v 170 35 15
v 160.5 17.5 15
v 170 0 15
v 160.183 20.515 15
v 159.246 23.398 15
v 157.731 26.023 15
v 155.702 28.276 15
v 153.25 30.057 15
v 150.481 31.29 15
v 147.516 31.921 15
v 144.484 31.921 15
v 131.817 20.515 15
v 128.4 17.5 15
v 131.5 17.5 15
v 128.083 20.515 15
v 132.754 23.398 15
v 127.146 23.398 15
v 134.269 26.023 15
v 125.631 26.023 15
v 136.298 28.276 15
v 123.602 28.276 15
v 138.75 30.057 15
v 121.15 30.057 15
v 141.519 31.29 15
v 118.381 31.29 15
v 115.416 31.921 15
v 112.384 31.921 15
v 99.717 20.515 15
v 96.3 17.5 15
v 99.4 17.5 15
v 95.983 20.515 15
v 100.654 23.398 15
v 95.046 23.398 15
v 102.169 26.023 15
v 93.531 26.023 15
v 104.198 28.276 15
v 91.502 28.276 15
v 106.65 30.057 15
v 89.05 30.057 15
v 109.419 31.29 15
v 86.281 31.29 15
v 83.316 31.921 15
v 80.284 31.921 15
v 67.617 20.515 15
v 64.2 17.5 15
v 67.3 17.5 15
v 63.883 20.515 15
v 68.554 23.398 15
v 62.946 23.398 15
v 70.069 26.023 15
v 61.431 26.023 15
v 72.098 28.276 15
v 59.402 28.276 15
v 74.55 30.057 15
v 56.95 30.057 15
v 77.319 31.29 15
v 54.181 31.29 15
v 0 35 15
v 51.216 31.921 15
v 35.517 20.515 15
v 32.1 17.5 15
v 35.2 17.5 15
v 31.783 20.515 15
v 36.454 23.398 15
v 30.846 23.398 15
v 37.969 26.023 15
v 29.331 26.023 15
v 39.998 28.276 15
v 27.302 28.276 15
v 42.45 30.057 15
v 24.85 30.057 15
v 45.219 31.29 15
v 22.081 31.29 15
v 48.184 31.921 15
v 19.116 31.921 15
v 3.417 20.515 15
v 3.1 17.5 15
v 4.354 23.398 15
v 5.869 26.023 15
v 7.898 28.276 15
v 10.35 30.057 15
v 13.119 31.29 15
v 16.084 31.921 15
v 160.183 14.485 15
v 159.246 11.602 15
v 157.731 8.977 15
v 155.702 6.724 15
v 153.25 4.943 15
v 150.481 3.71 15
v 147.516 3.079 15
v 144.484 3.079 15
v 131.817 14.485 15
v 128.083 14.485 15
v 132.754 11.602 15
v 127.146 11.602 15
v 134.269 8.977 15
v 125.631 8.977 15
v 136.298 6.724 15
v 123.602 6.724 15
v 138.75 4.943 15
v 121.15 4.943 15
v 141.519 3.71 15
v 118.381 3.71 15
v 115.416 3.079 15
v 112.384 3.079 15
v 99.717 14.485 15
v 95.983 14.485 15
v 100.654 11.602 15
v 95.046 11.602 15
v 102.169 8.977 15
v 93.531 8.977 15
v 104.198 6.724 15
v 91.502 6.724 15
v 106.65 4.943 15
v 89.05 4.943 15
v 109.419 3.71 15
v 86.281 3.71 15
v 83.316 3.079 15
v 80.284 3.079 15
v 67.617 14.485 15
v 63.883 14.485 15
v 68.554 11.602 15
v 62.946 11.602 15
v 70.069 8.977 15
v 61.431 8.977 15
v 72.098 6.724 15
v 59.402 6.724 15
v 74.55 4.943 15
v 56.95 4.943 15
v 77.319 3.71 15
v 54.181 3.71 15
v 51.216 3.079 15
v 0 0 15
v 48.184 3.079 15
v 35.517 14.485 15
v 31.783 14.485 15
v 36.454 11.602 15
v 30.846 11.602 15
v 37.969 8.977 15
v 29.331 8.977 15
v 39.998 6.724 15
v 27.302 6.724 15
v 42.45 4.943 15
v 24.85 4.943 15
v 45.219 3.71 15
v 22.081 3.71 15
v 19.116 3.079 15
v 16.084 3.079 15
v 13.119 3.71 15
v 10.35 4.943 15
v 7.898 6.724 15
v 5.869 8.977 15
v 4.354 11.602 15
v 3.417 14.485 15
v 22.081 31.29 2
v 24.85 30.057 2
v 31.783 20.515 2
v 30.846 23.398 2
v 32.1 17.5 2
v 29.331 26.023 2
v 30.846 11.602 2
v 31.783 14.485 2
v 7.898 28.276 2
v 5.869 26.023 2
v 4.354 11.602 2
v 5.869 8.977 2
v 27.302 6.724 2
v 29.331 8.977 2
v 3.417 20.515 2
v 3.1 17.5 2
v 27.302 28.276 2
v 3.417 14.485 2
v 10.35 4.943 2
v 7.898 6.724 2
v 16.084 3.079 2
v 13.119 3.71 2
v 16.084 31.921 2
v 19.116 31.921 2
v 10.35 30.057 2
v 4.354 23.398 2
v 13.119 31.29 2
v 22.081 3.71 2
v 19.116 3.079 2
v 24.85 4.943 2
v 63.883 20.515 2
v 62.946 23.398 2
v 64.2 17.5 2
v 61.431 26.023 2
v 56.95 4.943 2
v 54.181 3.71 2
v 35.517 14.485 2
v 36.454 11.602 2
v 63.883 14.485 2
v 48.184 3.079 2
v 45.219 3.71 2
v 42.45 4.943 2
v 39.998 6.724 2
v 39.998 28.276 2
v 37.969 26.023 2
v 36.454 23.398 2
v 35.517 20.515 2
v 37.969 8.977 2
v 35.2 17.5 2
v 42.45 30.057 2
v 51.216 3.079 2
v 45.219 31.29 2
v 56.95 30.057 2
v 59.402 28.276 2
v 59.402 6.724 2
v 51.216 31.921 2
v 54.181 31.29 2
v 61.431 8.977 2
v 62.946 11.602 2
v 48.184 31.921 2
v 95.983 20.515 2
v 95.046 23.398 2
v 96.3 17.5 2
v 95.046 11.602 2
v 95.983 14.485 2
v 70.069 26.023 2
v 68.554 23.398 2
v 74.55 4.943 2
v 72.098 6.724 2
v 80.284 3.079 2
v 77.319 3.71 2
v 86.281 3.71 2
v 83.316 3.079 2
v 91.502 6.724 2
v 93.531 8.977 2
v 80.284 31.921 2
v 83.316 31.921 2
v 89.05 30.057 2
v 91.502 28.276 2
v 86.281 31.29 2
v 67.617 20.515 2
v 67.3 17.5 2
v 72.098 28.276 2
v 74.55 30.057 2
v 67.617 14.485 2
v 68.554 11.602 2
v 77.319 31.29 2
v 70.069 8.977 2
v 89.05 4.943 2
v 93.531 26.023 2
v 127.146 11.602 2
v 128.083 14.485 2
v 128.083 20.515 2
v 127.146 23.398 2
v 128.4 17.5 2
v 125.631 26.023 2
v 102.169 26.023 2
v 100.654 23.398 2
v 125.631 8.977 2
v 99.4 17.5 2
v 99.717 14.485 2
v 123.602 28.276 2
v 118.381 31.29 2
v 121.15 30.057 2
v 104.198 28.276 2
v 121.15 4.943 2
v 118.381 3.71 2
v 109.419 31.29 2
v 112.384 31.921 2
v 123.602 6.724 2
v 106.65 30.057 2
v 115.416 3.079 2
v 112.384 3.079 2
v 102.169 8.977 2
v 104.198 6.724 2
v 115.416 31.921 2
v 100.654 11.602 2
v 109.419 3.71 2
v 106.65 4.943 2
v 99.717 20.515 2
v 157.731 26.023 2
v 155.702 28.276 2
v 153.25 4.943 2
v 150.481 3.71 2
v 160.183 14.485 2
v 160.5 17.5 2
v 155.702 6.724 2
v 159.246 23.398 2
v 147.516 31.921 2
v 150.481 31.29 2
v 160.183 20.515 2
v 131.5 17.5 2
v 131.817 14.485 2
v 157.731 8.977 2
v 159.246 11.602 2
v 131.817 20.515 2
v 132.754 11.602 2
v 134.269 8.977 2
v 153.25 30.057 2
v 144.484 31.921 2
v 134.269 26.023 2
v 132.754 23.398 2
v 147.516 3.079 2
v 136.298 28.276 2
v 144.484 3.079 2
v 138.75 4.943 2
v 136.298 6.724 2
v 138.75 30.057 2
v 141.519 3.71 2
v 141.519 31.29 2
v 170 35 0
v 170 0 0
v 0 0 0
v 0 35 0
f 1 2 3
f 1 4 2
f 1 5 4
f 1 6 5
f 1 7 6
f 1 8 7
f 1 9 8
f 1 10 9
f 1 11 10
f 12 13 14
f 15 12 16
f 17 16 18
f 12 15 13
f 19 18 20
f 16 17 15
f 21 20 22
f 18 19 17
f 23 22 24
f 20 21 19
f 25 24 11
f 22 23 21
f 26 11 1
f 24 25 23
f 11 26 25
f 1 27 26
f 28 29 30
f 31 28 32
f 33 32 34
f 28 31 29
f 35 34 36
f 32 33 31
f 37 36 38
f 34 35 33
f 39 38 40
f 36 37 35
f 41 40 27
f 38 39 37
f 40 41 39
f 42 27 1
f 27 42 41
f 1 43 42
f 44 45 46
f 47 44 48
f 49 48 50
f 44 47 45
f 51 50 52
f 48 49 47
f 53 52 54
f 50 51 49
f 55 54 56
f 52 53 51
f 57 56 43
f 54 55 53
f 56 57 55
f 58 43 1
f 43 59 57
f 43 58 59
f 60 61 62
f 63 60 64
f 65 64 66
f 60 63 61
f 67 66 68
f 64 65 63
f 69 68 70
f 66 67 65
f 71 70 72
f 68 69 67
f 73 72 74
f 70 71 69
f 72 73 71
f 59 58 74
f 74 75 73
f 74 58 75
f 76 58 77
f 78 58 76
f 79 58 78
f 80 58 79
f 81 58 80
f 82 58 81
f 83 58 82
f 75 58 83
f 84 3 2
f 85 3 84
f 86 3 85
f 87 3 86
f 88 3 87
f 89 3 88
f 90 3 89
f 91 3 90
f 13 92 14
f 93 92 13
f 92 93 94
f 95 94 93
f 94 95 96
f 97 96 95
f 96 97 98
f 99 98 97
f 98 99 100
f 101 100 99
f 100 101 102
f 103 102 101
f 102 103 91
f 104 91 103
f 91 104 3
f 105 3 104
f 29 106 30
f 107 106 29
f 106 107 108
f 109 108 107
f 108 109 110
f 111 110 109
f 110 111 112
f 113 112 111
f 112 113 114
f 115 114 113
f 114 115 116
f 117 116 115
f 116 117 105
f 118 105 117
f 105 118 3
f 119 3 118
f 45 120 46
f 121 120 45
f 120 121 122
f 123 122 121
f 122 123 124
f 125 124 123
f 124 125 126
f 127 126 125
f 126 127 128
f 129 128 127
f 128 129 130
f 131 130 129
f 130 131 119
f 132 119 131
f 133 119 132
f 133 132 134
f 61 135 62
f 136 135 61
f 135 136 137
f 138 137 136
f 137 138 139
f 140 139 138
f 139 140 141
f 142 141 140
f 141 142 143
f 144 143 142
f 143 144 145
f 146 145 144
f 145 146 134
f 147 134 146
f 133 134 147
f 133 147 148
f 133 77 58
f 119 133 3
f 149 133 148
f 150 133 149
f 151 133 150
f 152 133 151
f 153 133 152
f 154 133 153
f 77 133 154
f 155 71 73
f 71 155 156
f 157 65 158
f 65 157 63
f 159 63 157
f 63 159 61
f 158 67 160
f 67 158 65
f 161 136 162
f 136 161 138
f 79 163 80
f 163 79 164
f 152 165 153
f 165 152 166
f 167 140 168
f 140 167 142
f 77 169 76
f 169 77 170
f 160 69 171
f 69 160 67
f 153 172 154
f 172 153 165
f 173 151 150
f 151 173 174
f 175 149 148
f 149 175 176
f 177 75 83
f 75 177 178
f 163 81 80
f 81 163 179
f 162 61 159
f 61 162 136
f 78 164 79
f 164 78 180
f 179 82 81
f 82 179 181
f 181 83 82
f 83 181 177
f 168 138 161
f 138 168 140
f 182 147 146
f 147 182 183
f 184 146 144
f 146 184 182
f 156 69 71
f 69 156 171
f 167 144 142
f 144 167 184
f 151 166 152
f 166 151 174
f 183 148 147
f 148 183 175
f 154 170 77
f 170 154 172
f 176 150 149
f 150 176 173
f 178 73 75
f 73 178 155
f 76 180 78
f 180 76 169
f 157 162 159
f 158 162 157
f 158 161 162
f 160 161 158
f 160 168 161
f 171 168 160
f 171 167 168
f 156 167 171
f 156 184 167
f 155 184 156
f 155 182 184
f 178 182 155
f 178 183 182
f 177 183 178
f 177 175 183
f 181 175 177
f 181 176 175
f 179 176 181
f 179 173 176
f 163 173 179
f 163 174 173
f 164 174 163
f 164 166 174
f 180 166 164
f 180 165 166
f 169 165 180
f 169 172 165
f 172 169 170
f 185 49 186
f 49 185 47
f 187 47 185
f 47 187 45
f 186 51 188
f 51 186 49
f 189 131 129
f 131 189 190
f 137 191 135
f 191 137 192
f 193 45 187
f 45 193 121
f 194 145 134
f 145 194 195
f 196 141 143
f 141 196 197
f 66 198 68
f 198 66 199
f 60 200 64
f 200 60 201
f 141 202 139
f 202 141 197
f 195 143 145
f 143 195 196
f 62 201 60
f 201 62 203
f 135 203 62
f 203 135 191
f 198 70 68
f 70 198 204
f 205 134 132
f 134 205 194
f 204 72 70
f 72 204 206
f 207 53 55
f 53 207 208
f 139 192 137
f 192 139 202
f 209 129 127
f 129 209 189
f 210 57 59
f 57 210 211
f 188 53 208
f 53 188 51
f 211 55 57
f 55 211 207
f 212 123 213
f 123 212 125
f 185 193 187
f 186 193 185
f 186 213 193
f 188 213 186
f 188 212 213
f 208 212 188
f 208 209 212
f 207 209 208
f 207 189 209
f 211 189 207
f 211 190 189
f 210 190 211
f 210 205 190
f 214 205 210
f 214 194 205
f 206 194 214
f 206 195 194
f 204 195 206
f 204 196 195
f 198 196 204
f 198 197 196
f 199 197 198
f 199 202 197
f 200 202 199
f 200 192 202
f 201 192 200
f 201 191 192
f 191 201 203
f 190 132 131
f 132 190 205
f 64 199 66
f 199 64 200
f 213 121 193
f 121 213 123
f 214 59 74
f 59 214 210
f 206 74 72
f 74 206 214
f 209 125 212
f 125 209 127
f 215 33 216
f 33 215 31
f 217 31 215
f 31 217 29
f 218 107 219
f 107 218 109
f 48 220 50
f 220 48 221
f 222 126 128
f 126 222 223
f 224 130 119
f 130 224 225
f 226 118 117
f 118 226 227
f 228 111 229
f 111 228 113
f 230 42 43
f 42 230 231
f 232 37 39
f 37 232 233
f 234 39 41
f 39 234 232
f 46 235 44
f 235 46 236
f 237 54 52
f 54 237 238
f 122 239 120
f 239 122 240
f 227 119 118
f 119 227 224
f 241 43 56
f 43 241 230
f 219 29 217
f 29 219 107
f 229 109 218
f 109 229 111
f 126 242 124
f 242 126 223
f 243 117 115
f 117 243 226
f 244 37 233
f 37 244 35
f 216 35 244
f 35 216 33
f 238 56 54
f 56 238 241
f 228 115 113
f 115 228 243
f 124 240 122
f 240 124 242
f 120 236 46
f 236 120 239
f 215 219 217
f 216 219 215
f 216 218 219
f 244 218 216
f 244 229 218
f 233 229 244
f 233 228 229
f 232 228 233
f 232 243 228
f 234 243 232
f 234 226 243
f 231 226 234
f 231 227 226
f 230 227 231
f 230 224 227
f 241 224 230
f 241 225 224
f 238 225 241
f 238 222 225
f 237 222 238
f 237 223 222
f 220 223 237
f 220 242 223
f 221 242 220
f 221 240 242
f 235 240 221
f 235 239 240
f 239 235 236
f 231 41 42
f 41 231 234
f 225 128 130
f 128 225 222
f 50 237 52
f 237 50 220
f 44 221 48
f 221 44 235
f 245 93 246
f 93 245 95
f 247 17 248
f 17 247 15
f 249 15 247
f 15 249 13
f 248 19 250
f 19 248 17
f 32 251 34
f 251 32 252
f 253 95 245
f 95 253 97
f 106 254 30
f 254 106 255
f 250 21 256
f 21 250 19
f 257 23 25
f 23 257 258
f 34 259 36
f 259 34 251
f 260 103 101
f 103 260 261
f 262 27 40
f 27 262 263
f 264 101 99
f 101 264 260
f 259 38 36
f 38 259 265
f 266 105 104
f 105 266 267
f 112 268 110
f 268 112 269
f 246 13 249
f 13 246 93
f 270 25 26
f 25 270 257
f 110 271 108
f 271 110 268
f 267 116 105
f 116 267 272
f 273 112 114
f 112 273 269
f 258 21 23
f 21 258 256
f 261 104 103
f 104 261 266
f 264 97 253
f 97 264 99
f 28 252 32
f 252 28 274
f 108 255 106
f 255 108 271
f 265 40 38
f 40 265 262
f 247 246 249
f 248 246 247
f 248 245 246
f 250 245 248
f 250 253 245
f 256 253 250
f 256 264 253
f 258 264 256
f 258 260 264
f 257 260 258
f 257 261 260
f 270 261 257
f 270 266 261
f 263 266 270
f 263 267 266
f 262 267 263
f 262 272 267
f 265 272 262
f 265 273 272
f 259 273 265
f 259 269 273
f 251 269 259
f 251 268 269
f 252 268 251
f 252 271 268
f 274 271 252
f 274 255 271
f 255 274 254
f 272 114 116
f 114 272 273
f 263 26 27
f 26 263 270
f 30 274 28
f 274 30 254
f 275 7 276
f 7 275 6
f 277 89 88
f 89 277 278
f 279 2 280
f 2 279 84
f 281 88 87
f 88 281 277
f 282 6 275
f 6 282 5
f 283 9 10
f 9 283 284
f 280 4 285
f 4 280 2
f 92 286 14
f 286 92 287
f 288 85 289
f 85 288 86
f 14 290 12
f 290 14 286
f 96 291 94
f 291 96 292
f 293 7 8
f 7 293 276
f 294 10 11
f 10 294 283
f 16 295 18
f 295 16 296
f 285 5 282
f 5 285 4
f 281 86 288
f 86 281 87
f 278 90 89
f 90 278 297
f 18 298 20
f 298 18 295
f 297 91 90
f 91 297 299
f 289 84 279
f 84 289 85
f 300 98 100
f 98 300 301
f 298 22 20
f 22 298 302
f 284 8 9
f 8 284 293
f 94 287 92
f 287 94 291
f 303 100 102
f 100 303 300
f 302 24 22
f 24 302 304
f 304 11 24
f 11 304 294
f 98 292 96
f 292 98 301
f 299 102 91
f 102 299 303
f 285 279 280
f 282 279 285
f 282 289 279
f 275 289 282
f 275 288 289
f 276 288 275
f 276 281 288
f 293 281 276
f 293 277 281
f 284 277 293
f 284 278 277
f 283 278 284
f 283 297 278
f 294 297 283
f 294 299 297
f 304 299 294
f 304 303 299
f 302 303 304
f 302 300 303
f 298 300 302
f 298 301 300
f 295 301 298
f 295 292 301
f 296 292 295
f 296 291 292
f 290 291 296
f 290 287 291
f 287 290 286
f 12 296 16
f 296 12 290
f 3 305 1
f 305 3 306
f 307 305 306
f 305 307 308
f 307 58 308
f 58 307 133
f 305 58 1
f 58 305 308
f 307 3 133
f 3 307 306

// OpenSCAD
H=15;
W=170;
L=35;
F=2;
WALL=3.1;

module main() {
    difference() {
        box();
        holes(5,29);
    }
}


module holes(n,d) {
    echo((L-d)/2);
    bottom_offset=(L-d)/2;
    for (i=[0:n-1]) {
        echo(i);
    #translate([d/2+WALL+(WALL+d)*i,d/2+bottom_offset,F]) cylinder(H-F,d=d);
    }
}

module box() {
    cube([W,L,H]);
}


main();
